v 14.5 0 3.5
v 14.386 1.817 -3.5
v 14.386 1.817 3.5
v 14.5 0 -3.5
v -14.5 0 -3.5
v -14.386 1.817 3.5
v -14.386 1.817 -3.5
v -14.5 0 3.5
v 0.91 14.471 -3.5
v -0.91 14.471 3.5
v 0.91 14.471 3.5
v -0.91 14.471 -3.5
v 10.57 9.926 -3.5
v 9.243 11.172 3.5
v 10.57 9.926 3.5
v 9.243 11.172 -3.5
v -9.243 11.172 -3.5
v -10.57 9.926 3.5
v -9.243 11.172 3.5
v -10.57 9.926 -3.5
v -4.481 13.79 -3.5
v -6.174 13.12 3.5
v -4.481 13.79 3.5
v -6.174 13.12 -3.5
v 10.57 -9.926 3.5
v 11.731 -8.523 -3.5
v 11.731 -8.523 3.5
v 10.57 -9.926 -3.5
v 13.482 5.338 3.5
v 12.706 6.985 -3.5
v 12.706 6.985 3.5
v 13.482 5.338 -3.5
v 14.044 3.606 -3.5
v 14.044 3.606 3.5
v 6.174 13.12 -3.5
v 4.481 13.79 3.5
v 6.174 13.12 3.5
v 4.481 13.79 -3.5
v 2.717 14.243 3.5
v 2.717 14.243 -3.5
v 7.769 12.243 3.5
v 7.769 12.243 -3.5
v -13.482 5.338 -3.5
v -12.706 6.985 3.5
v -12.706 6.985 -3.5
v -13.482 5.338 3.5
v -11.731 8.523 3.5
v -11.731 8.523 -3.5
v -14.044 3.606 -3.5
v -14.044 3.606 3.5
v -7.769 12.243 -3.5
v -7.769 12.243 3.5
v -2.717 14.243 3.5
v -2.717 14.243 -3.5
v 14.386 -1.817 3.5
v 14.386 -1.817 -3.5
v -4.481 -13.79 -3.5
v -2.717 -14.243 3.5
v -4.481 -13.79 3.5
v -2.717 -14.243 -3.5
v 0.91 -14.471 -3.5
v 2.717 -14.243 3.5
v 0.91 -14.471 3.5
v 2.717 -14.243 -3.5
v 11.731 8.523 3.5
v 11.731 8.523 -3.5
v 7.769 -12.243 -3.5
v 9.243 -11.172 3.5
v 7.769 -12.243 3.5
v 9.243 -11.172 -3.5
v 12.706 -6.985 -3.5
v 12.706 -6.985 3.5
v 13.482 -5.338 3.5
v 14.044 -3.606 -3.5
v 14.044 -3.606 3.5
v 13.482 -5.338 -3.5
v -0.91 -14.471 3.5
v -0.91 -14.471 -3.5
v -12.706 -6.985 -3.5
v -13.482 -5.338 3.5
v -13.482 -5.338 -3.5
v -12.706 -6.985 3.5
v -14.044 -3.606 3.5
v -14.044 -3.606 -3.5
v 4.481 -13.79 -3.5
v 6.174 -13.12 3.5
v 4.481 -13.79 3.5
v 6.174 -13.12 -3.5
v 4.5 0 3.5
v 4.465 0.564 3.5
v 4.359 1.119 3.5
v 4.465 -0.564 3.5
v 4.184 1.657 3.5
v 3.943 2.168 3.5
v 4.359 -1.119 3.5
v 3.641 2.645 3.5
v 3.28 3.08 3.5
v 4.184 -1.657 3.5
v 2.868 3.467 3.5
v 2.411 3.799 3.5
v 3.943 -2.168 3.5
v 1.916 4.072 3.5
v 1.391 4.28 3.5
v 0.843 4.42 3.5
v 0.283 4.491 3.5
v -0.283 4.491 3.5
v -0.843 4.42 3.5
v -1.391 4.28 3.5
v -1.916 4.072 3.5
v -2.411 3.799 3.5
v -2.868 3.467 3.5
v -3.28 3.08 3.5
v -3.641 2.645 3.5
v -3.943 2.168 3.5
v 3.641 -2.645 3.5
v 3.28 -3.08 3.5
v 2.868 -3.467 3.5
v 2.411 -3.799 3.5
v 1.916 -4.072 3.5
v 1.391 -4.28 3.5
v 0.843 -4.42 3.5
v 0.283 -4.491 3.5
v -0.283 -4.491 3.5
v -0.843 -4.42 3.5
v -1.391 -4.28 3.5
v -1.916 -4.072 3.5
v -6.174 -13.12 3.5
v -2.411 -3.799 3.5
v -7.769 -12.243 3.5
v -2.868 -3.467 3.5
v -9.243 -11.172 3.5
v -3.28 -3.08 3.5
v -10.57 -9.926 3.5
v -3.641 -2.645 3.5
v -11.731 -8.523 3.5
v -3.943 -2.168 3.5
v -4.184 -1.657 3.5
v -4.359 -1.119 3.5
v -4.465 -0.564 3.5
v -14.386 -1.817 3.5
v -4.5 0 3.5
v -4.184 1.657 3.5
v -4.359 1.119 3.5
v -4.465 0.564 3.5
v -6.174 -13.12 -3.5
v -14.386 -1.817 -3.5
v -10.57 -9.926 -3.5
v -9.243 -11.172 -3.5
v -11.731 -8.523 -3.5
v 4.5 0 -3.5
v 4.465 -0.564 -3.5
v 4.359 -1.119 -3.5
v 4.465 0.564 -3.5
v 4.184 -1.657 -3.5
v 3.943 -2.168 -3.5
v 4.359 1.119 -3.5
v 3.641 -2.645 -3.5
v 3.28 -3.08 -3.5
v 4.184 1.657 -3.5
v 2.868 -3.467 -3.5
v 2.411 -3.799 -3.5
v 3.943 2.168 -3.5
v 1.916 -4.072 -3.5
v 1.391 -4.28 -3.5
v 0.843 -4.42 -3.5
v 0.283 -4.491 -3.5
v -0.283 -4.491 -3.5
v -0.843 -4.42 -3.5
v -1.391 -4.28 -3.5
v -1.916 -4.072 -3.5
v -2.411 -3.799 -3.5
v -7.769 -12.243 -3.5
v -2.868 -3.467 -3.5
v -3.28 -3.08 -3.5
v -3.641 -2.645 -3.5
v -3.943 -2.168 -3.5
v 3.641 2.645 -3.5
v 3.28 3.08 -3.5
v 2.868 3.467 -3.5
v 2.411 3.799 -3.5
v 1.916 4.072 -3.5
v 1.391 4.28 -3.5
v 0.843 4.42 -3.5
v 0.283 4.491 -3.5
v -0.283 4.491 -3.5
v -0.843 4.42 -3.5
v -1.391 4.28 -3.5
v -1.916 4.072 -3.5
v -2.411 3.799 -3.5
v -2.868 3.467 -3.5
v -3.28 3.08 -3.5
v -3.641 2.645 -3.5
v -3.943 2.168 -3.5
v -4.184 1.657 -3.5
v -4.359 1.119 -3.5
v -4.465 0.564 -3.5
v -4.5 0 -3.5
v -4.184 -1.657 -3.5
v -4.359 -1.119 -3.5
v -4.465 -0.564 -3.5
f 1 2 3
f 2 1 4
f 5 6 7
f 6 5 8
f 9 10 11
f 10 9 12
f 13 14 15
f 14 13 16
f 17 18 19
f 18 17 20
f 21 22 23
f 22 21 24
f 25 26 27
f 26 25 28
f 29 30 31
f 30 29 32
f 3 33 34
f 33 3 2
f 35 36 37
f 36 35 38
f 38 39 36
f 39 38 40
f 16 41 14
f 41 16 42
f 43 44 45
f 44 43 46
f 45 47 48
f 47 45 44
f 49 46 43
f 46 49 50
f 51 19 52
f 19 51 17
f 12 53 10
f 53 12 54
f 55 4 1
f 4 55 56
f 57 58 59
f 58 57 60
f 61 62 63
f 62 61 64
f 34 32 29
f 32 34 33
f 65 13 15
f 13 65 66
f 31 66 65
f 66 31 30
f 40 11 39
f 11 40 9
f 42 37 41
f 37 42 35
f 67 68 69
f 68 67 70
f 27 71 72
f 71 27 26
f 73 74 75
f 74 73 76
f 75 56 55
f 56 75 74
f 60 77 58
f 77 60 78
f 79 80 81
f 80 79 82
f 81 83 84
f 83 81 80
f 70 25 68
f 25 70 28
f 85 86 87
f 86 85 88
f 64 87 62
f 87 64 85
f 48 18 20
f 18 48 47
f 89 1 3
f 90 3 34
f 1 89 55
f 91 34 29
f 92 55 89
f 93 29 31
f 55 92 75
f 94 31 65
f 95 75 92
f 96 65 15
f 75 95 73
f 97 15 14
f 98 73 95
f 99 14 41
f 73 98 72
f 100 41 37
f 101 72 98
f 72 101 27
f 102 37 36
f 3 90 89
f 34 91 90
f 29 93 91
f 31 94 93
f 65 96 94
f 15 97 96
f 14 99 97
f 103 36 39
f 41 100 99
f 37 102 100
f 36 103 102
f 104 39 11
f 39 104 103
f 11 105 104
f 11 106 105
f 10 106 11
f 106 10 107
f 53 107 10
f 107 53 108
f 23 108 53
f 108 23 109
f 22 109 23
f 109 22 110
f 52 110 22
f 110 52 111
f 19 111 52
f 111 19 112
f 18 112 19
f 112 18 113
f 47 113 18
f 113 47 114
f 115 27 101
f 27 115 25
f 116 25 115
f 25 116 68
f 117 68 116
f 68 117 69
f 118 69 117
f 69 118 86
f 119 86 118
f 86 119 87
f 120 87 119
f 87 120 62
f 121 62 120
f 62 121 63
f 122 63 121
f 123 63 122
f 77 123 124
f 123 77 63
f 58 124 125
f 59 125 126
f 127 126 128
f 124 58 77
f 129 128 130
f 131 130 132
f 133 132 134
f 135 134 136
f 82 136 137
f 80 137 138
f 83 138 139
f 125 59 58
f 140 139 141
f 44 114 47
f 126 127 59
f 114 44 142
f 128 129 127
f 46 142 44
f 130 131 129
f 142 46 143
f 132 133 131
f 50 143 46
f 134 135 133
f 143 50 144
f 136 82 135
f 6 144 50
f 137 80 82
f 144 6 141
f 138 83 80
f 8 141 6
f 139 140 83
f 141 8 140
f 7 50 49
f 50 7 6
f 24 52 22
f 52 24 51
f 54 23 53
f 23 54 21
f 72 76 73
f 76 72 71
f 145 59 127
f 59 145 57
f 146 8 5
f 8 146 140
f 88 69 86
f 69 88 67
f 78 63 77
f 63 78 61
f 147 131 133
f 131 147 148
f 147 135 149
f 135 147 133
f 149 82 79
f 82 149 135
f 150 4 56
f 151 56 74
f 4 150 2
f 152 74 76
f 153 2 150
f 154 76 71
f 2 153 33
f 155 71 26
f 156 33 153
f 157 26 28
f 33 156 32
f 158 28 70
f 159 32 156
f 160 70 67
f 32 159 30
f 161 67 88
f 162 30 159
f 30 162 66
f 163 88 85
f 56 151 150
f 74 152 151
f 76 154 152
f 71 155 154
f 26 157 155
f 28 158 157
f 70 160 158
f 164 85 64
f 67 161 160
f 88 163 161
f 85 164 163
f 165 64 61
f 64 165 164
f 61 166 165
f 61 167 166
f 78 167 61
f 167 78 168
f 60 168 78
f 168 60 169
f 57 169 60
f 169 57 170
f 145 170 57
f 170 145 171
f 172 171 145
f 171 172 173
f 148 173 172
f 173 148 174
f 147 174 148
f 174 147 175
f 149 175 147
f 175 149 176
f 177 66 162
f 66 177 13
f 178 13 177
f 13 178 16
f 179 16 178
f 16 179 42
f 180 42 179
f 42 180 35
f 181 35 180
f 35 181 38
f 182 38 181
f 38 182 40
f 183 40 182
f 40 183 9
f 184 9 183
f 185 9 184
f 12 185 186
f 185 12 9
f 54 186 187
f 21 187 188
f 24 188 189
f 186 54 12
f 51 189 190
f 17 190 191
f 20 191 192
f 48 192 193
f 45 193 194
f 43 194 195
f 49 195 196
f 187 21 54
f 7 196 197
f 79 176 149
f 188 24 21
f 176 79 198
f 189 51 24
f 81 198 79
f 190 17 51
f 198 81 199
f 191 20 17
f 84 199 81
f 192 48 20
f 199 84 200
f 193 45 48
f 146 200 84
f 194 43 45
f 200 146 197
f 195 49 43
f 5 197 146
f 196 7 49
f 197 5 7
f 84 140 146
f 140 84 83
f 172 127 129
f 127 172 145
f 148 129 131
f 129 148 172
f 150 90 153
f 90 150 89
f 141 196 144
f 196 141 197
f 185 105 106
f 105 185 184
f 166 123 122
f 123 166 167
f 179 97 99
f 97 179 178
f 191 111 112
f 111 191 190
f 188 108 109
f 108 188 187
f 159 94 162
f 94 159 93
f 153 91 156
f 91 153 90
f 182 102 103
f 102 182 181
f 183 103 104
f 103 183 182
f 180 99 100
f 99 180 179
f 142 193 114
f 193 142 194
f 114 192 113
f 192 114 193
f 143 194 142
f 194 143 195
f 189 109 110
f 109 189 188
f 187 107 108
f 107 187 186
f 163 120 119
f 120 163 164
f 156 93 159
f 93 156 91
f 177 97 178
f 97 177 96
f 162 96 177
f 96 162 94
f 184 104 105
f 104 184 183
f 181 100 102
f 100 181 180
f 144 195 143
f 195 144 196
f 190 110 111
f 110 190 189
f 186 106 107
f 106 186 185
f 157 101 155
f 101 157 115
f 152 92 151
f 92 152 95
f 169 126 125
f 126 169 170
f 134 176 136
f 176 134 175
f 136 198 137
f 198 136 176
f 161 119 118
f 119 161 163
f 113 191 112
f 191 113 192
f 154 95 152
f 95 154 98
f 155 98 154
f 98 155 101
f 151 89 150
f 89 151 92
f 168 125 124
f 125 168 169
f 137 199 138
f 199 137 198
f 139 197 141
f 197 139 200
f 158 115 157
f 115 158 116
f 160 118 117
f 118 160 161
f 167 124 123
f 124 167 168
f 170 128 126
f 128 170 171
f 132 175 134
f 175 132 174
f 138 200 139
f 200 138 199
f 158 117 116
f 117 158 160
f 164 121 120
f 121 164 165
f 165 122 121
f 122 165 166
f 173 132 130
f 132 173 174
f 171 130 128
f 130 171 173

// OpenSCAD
$fn = 50;


difference() {
	union() {
		translate(v = [0, 0, -3.5000000000]) {
			cylinder(h = 7, r = 14.5000000000);
		}
	}
	union() {
		translate(v = [0, 0, -100.0000000000]) {
			cylinder(h = 200, r = 4.5000000000);
		}
	}
}
